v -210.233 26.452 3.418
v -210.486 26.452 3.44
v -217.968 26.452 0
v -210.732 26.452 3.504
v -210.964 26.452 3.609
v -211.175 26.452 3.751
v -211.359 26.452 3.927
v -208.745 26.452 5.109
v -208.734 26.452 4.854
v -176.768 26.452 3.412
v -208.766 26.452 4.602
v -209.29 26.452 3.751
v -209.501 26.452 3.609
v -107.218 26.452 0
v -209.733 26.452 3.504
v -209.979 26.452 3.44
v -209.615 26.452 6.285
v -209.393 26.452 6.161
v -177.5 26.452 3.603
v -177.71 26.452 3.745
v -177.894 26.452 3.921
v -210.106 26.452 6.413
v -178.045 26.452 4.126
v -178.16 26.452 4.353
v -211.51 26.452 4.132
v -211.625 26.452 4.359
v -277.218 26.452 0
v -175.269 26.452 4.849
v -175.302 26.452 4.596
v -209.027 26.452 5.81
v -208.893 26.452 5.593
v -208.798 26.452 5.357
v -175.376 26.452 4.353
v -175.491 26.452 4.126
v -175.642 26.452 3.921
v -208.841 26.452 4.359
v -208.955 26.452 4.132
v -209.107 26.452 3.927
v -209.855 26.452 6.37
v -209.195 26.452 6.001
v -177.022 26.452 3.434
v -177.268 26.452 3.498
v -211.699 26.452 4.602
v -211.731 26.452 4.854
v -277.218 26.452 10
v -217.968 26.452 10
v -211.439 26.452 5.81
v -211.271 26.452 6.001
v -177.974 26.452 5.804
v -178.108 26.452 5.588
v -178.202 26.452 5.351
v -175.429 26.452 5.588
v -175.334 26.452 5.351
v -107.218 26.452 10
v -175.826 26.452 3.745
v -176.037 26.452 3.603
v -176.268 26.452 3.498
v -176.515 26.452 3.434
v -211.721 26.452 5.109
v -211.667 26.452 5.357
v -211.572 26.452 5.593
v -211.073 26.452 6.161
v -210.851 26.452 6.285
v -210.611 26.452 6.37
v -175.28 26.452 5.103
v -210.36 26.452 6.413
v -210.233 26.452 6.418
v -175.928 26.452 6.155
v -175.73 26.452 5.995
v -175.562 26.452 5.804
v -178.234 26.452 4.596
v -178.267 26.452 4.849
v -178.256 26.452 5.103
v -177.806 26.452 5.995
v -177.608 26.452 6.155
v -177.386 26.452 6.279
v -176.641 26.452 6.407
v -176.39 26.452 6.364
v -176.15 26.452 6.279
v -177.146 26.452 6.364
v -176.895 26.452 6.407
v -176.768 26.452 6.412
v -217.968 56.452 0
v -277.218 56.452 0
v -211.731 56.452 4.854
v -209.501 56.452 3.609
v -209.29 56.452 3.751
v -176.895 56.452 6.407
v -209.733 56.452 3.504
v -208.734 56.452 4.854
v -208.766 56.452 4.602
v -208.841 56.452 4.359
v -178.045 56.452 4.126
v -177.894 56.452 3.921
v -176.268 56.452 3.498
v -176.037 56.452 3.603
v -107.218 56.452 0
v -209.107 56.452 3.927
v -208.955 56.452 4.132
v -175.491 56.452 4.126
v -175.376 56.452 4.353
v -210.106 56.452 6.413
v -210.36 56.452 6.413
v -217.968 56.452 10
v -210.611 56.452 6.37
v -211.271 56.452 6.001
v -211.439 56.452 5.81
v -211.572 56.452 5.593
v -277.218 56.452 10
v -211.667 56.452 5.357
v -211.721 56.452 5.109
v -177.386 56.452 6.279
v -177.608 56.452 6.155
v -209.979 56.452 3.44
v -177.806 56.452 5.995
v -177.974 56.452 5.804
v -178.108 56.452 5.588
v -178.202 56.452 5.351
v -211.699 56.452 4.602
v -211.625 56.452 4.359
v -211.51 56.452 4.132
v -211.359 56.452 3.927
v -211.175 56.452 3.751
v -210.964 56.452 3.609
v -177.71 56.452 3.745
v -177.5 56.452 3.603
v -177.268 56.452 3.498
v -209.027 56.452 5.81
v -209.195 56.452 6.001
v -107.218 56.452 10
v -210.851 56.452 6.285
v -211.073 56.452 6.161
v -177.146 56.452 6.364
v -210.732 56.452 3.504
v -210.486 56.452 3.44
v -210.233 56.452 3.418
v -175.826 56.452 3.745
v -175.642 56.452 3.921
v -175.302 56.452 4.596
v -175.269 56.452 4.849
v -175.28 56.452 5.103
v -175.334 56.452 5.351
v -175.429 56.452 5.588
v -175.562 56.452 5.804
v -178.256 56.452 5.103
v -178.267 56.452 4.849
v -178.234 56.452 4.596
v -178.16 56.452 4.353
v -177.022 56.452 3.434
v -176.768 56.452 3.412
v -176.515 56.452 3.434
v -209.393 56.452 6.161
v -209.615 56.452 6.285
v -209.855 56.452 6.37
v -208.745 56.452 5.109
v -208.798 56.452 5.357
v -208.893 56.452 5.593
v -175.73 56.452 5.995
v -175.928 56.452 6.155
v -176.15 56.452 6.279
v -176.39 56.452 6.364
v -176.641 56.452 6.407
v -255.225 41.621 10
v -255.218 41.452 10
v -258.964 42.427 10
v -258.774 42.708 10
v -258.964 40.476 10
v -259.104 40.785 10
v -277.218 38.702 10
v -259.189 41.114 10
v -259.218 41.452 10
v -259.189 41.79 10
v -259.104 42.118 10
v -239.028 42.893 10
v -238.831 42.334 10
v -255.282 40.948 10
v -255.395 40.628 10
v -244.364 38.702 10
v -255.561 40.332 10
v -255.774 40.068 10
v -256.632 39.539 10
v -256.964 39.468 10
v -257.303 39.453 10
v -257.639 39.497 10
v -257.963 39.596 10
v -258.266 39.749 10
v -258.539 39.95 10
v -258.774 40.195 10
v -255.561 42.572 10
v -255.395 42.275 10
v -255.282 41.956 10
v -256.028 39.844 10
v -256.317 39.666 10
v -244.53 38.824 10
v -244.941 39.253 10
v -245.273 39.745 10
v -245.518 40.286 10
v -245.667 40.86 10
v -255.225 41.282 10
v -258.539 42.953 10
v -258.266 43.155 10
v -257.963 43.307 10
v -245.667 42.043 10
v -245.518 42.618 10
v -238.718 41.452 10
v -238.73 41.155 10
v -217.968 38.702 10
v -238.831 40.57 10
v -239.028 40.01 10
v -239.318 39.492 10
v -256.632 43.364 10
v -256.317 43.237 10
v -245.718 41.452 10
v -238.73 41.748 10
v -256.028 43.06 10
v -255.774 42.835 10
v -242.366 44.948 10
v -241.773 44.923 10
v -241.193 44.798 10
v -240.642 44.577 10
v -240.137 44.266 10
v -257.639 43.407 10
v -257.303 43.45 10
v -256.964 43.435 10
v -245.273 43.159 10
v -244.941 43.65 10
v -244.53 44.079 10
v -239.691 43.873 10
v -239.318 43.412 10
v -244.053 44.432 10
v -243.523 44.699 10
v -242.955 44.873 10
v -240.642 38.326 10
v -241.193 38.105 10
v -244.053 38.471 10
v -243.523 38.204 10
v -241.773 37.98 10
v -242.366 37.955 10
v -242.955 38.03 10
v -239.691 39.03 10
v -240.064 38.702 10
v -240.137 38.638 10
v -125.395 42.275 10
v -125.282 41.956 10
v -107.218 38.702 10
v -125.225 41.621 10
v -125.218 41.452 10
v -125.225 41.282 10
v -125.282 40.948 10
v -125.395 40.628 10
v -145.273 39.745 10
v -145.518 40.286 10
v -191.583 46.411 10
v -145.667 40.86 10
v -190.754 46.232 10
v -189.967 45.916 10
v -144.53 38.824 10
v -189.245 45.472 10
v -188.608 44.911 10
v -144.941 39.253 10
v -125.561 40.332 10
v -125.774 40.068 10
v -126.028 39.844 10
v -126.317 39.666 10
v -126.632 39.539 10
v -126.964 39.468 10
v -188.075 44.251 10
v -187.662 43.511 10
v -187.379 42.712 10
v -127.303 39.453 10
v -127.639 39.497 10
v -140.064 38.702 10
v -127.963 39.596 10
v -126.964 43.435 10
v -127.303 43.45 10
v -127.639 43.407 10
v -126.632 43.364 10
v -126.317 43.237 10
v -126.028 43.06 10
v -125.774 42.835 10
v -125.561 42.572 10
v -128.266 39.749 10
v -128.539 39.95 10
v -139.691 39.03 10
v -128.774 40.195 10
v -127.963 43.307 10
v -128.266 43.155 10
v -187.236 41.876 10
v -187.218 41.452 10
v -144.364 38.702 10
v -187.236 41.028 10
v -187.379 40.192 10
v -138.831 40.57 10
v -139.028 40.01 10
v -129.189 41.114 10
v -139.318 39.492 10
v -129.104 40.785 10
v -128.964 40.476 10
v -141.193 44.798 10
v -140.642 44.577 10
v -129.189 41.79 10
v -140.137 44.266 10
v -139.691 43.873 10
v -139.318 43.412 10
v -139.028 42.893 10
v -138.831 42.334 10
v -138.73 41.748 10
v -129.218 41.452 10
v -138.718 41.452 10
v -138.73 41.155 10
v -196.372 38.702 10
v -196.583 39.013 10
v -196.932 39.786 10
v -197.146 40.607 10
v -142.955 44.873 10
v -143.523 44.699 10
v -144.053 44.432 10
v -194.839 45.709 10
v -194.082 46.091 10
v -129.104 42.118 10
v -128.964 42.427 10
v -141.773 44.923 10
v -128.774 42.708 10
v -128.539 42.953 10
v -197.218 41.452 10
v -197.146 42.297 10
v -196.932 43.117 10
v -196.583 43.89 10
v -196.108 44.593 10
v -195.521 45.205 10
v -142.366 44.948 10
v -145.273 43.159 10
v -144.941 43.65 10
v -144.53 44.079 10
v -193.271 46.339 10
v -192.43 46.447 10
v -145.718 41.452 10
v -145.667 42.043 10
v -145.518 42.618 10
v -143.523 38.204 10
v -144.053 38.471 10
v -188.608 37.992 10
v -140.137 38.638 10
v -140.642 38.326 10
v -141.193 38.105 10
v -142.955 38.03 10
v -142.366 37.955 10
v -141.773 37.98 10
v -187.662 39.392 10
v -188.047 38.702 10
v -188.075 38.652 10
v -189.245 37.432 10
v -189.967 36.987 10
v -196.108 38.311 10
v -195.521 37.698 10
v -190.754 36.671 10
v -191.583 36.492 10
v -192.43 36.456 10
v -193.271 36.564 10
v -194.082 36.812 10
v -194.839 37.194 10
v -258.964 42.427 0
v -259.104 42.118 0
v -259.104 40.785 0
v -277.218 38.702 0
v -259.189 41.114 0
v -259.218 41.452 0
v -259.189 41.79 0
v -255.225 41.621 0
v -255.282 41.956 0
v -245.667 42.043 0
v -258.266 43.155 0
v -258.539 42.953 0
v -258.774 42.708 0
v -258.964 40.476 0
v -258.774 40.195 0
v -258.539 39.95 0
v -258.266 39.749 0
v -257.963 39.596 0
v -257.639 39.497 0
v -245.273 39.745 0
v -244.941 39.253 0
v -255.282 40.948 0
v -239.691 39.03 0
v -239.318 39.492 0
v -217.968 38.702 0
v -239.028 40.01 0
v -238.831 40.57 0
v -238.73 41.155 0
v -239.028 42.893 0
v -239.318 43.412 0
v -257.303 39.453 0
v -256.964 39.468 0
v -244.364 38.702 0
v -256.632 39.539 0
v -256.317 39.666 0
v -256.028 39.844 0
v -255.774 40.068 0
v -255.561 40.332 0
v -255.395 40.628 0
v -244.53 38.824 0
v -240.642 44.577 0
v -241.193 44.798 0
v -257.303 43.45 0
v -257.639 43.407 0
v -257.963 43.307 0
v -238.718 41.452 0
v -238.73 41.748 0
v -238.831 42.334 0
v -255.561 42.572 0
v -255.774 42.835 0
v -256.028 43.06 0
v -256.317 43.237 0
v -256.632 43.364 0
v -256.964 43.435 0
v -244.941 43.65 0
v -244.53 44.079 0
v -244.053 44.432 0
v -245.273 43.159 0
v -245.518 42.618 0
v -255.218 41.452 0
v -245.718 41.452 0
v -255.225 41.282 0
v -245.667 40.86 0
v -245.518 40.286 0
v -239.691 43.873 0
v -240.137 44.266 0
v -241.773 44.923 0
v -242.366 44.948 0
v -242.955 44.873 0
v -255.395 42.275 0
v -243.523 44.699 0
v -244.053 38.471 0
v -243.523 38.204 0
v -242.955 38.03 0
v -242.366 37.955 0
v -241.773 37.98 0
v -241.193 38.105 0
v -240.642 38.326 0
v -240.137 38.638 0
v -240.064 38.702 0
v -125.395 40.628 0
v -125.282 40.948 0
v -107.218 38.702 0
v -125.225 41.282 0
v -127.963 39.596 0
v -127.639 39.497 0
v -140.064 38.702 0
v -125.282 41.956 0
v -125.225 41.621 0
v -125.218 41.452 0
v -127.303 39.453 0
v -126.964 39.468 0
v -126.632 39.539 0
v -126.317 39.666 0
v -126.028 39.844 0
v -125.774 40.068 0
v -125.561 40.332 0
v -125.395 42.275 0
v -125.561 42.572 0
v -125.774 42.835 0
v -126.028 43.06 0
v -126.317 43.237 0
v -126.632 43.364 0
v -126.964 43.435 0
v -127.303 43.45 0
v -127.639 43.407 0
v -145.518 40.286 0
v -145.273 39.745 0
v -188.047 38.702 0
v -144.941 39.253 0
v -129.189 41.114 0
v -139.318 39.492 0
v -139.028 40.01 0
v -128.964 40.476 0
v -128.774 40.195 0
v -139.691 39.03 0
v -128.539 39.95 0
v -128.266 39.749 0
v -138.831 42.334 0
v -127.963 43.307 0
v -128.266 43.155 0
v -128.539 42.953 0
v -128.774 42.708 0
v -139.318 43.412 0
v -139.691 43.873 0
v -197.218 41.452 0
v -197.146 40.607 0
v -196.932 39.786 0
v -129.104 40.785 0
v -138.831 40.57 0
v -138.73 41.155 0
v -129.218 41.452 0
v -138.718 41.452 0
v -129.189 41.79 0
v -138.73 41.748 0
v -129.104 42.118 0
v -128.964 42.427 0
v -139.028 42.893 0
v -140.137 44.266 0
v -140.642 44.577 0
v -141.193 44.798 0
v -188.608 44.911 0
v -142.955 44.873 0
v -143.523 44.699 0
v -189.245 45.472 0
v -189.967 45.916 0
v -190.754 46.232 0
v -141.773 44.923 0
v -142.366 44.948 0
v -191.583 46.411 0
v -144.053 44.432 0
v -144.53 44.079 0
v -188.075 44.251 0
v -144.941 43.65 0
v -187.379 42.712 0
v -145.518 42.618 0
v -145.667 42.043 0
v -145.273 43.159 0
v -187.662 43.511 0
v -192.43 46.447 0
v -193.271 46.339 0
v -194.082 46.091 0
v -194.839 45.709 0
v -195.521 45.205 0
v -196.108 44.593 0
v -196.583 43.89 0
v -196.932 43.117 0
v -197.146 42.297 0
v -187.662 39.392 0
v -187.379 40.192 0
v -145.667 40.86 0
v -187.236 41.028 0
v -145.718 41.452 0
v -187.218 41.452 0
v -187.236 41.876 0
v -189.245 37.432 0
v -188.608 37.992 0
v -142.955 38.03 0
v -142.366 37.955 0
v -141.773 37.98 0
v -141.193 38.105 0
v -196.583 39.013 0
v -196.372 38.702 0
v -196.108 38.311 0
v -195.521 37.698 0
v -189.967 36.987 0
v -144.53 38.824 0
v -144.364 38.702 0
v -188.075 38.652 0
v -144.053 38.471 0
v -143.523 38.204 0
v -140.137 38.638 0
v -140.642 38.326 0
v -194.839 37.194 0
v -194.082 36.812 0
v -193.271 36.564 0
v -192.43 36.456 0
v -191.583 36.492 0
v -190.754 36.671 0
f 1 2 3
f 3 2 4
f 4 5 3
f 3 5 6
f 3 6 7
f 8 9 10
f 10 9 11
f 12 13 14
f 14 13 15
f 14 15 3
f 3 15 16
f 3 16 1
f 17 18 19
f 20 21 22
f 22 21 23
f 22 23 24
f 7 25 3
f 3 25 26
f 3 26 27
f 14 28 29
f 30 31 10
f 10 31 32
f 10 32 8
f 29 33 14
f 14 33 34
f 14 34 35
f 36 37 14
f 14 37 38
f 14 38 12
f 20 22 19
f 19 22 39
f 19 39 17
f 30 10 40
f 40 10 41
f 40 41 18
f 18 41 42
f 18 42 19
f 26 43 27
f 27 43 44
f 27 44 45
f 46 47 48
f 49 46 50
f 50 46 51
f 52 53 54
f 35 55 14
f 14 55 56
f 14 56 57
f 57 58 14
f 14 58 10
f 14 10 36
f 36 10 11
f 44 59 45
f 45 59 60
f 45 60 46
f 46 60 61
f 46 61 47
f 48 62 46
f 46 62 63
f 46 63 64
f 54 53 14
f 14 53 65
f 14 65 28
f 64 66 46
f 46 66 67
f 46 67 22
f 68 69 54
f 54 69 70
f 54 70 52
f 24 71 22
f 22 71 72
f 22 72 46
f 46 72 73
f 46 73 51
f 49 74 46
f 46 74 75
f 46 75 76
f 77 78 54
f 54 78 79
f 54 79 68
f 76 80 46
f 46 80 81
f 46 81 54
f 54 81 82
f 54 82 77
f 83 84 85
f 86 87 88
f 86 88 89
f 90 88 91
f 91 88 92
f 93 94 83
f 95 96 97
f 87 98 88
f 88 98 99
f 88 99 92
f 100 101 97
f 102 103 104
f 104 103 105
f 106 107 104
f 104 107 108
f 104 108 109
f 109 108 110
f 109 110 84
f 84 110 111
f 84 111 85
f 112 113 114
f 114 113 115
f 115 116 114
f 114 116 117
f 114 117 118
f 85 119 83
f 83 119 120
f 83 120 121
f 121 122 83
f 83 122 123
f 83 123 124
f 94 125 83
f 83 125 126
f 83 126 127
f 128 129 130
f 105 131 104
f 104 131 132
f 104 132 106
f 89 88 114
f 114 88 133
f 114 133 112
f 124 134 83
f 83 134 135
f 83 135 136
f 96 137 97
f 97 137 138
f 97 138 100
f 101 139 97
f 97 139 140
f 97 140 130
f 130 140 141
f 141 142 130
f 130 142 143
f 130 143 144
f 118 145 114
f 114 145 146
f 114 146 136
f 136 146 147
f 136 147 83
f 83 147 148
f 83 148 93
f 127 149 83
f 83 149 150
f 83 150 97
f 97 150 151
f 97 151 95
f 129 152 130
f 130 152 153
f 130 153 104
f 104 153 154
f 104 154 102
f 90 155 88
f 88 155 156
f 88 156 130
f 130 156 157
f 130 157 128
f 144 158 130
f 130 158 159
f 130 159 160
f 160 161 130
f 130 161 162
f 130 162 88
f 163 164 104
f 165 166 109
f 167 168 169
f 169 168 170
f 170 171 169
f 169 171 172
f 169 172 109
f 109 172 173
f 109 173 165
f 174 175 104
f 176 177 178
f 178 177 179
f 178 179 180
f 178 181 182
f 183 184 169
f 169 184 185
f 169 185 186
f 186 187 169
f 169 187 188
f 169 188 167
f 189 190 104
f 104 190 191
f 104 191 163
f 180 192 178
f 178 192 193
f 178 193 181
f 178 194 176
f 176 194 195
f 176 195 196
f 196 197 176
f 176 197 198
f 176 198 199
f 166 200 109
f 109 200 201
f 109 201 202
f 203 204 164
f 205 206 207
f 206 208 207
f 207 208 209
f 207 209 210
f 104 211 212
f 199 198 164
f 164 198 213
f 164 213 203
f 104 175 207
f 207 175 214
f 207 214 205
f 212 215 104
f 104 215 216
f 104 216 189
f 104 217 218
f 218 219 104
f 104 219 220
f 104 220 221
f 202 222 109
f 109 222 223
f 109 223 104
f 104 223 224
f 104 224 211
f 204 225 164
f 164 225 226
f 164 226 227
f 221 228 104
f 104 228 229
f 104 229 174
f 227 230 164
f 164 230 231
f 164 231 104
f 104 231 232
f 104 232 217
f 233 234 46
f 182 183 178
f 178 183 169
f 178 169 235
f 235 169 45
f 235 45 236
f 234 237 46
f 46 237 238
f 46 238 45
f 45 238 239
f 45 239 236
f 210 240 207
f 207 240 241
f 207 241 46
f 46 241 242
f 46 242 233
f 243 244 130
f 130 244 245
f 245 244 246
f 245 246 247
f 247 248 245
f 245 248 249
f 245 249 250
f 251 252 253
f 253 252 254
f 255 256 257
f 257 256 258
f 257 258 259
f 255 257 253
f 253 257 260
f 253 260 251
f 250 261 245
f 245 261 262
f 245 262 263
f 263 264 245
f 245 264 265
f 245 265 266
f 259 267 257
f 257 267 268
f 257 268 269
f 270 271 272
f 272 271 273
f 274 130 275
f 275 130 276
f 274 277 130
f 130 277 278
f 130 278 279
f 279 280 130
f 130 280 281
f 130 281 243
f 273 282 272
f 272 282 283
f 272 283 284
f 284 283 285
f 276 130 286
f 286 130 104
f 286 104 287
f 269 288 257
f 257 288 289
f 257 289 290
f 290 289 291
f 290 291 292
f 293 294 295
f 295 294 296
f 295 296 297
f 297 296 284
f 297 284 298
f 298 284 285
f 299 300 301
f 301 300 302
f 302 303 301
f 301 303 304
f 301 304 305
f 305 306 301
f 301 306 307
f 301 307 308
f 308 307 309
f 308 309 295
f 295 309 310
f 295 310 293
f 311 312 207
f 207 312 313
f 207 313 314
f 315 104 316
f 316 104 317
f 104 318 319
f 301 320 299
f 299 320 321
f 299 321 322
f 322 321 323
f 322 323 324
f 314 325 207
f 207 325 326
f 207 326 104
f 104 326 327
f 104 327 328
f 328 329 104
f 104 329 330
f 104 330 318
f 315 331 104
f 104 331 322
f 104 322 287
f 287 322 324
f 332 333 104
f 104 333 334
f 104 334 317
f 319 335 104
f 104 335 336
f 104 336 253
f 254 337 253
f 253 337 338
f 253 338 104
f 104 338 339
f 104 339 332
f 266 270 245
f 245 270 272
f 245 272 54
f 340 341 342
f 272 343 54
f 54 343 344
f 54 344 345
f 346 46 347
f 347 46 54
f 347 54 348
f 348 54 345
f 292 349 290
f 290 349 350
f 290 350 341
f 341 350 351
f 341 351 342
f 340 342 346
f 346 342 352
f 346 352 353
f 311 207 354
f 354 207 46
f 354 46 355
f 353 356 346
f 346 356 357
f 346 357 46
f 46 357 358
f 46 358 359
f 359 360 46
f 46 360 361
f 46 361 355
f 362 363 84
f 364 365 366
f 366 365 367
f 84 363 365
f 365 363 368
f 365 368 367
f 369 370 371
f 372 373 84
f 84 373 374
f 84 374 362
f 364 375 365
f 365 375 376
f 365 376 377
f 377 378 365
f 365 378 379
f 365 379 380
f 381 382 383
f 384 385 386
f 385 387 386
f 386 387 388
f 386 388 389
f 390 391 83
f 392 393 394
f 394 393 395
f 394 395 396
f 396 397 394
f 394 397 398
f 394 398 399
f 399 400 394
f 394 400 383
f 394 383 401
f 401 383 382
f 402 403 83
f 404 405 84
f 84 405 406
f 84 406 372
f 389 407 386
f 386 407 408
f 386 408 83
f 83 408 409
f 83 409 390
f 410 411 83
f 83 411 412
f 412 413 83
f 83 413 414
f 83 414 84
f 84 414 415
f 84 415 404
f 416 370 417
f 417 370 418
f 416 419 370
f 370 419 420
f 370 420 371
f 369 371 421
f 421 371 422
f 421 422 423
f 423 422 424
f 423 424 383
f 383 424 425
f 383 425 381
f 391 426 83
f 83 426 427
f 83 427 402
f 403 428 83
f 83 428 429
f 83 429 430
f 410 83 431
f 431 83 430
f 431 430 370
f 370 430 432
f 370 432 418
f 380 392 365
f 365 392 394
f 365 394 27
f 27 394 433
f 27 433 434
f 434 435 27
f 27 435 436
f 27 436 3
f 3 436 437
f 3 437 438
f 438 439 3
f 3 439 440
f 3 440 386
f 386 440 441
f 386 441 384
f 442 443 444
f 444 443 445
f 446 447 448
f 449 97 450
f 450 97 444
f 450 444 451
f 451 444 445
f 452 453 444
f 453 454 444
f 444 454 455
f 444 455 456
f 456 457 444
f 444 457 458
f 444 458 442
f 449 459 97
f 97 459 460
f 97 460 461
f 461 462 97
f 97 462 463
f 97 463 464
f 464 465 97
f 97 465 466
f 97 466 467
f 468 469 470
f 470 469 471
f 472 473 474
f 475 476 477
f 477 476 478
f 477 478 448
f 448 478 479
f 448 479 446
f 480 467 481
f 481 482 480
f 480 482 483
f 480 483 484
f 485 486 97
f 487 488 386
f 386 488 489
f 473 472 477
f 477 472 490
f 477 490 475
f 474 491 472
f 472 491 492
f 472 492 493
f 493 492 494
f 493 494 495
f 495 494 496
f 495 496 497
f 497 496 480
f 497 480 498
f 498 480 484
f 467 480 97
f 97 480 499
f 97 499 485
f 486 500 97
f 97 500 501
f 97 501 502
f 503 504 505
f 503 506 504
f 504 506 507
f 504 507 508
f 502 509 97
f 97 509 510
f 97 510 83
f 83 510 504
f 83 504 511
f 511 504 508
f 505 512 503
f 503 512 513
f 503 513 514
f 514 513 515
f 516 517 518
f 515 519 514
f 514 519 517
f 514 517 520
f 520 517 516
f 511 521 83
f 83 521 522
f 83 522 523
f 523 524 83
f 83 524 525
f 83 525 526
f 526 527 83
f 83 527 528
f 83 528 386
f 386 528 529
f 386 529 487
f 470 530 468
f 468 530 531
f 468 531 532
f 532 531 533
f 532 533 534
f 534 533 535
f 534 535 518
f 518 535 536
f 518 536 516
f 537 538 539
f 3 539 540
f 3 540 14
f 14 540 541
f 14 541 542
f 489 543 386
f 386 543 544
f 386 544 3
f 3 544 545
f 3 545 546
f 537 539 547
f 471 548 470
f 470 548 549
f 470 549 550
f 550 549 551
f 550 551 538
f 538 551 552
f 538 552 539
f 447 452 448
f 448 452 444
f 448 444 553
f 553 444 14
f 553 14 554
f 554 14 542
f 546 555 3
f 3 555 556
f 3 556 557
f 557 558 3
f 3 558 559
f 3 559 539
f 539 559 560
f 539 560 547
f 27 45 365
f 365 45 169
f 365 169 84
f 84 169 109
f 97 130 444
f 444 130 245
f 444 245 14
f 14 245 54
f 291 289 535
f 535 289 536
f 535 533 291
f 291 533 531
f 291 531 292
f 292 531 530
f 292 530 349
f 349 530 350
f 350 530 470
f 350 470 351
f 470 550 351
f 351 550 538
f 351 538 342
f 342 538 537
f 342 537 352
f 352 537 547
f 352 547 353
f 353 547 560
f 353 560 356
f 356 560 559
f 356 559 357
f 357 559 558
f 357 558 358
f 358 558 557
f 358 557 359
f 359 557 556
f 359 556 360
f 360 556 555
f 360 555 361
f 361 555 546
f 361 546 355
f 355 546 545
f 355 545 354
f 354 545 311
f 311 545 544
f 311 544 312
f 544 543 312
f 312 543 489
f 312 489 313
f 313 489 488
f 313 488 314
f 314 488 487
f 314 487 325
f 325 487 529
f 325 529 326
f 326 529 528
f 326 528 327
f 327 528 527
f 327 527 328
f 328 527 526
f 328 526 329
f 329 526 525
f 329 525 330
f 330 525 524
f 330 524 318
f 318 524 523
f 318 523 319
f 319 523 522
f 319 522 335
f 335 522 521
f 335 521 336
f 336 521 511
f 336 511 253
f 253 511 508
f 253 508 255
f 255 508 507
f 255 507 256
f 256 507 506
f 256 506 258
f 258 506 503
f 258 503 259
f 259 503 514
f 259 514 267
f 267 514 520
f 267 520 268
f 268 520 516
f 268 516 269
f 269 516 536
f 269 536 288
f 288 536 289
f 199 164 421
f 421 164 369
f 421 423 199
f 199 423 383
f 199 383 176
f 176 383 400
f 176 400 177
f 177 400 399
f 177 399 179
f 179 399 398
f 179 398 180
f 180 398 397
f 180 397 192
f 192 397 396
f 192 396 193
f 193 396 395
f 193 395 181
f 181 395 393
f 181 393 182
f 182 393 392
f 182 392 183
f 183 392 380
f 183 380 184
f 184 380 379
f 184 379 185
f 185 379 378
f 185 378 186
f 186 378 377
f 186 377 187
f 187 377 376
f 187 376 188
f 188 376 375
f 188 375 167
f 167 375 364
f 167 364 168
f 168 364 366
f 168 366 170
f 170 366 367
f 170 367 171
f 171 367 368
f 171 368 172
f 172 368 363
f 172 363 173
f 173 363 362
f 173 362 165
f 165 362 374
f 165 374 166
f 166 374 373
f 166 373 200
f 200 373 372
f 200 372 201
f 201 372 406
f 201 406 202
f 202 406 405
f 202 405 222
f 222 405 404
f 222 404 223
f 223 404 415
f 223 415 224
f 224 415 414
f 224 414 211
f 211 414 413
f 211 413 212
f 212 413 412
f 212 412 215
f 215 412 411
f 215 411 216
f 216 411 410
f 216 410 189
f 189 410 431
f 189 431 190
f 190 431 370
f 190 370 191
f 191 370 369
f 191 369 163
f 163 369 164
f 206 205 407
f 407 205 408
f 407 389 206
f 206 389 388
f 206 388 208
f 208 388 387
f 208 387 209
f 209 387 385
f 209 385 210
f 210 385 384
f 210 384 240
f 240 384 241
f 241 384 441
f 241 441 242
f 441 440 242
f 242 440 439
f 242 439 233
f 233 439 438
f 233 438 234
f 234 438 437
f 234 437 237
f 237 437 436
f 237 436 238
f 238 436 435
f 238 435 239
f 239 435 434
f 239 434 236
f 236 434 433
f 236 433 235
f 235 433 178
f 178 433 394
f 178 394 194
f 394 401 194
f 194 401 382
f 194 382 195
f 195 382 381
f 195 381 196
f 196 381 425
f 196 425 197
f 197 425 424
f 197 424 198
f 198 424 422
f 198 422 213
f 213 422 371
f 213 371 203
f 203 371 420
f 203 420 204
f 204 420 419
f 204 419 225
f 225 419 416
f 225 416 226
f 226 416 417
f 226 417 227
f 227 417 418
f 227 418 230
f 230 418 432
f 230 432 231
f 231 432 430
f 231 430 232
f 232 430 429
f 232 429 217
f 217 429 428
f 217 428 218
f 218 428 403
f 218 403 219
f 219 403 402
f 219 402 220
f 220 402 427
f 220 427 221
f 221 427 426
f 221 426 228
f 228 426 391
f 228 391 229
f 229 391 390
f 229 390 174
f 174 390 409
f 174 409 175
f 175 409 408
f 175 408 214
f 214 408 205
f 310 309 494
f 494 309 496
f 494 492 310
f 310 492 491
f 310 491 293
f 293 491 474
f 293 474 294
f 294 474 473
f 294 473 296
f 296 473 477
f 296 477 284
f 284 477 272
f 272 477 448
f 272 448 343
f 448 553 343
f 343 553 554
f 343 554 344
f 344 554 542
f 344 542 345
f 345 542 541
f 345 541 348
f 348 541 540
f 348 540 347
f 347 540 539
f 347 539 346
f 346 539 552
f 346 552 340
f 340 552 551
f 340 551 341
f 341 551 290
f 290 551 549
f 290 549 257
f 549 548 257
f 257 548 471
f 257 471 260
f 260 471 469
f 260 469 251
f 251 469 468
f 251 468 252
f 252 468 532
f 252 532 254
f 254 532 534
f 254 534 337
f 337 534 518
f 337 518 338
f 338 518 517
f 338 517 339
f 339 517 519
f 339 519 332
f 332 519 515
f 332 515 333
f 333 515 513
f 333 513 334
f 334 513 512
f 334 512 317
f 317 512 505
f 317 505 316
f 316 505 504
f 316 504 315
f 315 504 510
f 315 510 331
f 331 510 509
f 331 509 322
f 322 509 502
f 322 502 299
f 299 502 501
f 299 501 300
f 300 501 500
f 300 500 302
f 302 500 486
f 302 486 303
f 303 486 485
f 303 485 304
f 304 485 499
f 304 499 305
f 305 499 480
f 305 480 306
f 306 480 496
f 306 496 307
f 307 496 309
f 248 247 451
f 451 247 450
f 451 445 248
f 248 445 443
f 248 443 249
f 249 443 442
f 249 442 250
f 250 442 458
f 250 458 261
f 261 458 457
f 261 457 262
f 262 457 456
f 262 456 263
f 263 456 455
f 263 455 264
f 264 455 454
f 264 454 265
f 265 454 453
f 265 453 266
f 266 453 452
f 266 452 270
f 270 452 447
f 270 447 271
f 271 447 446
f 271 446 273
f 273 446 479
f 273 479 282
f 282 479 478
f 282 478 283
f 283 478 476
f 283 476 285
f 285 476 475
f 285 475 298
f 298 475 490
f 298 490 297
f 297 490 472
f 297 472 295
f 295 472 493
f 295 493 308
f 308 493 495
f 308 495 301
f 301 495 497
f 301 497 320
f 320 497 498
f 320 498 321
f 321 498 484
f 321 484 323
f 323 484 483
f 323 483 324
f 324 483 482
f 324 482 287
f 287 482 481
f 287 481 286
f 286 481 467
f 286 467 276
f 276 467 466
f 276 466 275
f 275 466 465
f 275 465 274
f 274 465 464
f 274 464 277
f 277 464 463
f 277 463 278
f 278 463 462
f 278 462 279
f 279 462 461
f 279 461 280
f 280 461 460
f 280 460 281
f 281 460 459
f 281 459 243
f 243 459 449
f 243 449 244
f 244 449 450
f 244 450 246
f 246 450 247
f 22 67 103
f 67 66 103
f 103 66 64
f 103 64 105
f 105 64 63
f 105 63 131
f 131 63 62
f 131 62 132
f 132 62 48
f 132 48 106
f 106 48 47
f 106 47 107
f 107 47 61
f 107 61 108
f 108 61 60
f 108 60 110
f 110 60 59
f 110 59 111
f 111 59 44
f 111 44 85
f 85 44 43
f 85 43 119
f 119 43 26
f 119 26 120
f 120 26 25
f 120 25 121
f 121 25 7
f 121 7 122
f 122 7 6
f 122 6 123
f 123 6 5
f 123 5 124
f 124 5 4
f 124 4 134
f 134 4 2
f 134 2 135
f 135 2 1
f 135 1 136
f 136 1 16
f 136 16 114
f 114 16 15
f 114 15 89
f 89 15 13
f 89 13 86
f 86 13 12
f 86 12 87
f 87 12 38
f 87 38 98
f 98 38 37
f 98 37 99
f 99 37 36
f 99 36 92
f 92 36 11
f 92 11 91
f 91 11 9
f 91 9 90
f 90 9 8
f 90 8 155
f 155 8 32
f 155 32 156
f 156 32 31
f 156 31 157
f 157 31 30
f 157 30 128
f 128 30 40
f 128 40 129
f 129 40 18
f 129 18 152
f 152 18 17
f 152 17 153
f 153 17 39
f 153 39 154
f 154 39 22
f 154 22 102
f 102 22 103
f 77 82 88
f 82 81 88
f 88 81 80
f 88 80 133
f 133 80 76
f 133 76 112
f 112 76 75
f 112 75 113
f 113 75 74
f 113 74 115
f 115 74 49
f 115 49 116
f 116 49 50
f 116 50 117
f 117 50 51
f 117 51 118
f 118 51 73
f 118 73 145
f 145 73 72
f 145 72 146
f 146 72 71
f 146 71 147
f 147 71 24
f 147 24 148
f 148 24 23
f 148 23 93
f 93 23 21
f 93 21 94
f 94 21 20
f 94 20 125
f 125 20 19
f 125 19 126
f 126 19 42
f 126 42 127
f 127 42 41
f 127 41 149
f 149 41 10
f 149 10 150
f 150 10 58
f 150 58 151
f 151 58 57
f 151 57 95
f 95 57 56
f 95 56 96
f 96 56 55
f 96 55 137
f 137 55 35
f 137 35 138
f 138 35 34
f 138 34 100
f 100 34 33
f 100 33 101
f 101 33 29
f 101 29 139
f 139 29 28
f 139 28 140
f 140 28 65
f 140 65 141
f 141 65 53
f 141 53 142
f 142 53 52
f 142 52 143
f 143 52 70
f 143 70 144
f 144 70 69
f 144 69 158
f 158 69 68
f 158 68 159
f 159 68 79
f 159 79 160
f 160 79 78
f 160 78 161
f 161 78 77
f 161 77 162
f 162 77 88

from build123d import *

# Parameters (mm, degrees)
ESBO_O1_W                 = 170
ESBO_O1_H                 = 30
ESBO_O1_R                 = 5
ESBO_O1_R_2               = 3.5
ESBO_O1_R_3               = 2
RESSALTO_EXTRUS_O1_DEPTH  = 10
CORTE_EXTRUS_O1_START     = 26.451612903
CORTE_EXTRUS_O1_OUTLINE_R = 1.5
CORTE_EXTRUS_O1_DEPTH     = 30


# Read off the part's stored shape, not the designer's step: Corte-extrusão1
with BuildPart() as part:
    # Esboço1 → Ressalto-extrusão1 (new body)
    with BuildSketch(Plane.XY):
        with Locations((-192.217741935, 41.451612903)):
            Rectangle(ESBO_O1_W, ESBO_O1_H)
        with Locations((-192.217741935, 41.451612903)):
            Circle(ESBO_O1_R, mode=Mode.SUBTRACT)
        with Locations((-242.217741935, 41.451612903)):
            Circle(ESBO_O1_R_2, mode=Mode.SUBTRACT)
        with Locations((-142.217741935, 41.451612903)):
            Circle(ESBO_O1_R_2, mode=Mode.SUBTRACT)
        with Locations((-257.217741935, 41.451612903)):
            Circle(ESBO_O1_R_3, mode=Mode.SUBTRACT)
        with Locations((-127.217741935, 41.451612903)):
            Circle(ESBO_O1_R_3, mode=Mode.SUBTRACT)
    extrude(amount=RESSALTO_EXTRUS_O1_DEPTH)

    # Corte-extrusão1 outline → Corte-extrusão1 (cut)
    with BuildSketch(Plane(origin=(0, 0, 0), x_dir=(1, 0, 0), z_dir=(0, 1, 0)).offset(CORTE_EXTRUS_O1_START)):
        with Locations((-210.23272287, -4.918113723)):
            Circle(CORTE_EXTRUS_O1_OUTLINE_R)
        with Locations((-176.768107745, -4.912217988)):
            Circle(CORTE_EXTRUS_O1_OUTLINE_R)
    extrude(amount=CORTE_EXTRUS_O1_DEPTH, mode=Mode.SUBTRACT)


solid = part.part
